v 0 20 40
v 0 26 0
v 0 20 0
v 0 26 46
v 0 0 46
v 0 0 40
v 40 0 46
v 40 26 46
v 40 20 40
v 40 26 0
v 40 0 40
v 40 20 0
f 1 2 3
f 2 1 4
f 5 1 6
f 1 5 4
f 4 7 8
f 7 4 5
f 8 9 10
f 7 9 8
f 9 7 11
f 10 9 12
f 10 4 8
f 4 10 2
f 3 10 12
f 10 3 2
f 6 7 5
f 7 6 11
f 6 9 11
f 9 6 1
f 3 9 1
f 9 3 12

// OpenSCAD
WallThickness = 6;
ExistingWallThickness = 7;
PartWidth = 30 + 3;
ReverseWidth = 20;
PartLength = 40;

difference() {
    cube([PartLength, ReverseWidth+WallThickness, WallThickness+ExistingWallThickness+PartWidth], center=false);
    cube([PartLength, ReverseWidth, ExistingWallThickness+PartWidth], center=false);
}


/*
ShelfLength = 180;
ShelfWidth = 110;
ShelfHeight = 8;
WallThickness = 2;

ColumnSize = 5;
ColumnHeight = 80;
ColumnOffset = 20;
ColumnHoleRadius = 0;

// Main surface
cube([ShelfWidth, ShelfLength, WallThickness], center=false);

// Backwall reenforcement
translate([0, 0, ShelfHeight/2]) {
    rotate([0, 90, 0]) {
        cube([ShelfHeight, ShelfLength, WallThickness], center=false);
    }
}


// Triangle reenforcement
translate([5, 0, -(ColumnHeight-ColumnOffset) + 3]) {
    rotate([0, -atan((ColumnHeight-ColumnOffset)/ShelfWidth),0]) {
        cube([sqrt(ShelfWidth*ShelfWidth + (ColumnHeight-ColumnOffset)*(ColumnHeight-ColumnOffset)) - 15, ColumnSize, ColumnSize], center=false);
    }
}

// Triangle reenforcement
translate([5, ShelfLength-ColumnSize, -(ColumnHeight-ColumnOffset) + 3]) {
    rotate([0, -atan((ColumnHeight-ColumnOffset)/ShelfWidth),0]) {
        cube([sqrt(ShelfWidth*ShelfWidth + (ColumnHeight-ColumnOffset)*(ColumnHeight-ColumnOffset)) - 15, ColumnSize, ColumnSize], center=false);
    }
}

// Surface reenforcement
translate([0, 0, -ColumnSize]) {
    cube([ShelfWidth, ColumnSize, ColumnSize], center=false);
}

// Surface reenforcement
translate([0, ShelfLength-ColumnSize, -ColumnSize]) {
    cube([ShelfWidth, ColumnSize, ColumnSize], center=false);
}

// Backwall vertical reenforcement
difference () {
    translate([0, 0, -ColumnHeight/2 - ColumnOffset]) {
        cube([ColumnSize, ColumnSize, ColumnHeight], center=false);
    }
    
    translate([0, ColumnSize/2, ColumnOffset - ColumnSize]) {
        rotate([0, 90, 0]) {
            cylinder(h = ColumnSize, r = ColumnHoleRadius, center = false);
        }
    }
}

difference () {
    translate([0, ShelfLength - ColumnSize, -ColumnHeight/2 - ColumnOffset]) {
        cube([ColumnSize, ColumnSize, ColumnHeight], center=false);
    }

    translate([0, ShelfLength - ColumnSize/2, ColumnOffset - ColumnSize]) {
        rotate([0, 90, 0]) {
            cylinder(h = ColumnSize, r = ColumnHoleRadius, center = false);
        }
    }
}
*/

/*
translate([PSUWidth-0.2, 8, 18]) {
    rotate([90, 0, 90]) {
        linear_extrude(height = 1/2){
            text("110-220V Input", size=3, font="Arial Black");
        }
    }
}

translate([PSUWidth-0.2, 5, 8]) {
    rotate([90, 0, 90]) {
        linear_extrude(height = 1/2){
            text("4V 1.25A Output", size=3, font="Arial Black");
        }
    }
}
*/
